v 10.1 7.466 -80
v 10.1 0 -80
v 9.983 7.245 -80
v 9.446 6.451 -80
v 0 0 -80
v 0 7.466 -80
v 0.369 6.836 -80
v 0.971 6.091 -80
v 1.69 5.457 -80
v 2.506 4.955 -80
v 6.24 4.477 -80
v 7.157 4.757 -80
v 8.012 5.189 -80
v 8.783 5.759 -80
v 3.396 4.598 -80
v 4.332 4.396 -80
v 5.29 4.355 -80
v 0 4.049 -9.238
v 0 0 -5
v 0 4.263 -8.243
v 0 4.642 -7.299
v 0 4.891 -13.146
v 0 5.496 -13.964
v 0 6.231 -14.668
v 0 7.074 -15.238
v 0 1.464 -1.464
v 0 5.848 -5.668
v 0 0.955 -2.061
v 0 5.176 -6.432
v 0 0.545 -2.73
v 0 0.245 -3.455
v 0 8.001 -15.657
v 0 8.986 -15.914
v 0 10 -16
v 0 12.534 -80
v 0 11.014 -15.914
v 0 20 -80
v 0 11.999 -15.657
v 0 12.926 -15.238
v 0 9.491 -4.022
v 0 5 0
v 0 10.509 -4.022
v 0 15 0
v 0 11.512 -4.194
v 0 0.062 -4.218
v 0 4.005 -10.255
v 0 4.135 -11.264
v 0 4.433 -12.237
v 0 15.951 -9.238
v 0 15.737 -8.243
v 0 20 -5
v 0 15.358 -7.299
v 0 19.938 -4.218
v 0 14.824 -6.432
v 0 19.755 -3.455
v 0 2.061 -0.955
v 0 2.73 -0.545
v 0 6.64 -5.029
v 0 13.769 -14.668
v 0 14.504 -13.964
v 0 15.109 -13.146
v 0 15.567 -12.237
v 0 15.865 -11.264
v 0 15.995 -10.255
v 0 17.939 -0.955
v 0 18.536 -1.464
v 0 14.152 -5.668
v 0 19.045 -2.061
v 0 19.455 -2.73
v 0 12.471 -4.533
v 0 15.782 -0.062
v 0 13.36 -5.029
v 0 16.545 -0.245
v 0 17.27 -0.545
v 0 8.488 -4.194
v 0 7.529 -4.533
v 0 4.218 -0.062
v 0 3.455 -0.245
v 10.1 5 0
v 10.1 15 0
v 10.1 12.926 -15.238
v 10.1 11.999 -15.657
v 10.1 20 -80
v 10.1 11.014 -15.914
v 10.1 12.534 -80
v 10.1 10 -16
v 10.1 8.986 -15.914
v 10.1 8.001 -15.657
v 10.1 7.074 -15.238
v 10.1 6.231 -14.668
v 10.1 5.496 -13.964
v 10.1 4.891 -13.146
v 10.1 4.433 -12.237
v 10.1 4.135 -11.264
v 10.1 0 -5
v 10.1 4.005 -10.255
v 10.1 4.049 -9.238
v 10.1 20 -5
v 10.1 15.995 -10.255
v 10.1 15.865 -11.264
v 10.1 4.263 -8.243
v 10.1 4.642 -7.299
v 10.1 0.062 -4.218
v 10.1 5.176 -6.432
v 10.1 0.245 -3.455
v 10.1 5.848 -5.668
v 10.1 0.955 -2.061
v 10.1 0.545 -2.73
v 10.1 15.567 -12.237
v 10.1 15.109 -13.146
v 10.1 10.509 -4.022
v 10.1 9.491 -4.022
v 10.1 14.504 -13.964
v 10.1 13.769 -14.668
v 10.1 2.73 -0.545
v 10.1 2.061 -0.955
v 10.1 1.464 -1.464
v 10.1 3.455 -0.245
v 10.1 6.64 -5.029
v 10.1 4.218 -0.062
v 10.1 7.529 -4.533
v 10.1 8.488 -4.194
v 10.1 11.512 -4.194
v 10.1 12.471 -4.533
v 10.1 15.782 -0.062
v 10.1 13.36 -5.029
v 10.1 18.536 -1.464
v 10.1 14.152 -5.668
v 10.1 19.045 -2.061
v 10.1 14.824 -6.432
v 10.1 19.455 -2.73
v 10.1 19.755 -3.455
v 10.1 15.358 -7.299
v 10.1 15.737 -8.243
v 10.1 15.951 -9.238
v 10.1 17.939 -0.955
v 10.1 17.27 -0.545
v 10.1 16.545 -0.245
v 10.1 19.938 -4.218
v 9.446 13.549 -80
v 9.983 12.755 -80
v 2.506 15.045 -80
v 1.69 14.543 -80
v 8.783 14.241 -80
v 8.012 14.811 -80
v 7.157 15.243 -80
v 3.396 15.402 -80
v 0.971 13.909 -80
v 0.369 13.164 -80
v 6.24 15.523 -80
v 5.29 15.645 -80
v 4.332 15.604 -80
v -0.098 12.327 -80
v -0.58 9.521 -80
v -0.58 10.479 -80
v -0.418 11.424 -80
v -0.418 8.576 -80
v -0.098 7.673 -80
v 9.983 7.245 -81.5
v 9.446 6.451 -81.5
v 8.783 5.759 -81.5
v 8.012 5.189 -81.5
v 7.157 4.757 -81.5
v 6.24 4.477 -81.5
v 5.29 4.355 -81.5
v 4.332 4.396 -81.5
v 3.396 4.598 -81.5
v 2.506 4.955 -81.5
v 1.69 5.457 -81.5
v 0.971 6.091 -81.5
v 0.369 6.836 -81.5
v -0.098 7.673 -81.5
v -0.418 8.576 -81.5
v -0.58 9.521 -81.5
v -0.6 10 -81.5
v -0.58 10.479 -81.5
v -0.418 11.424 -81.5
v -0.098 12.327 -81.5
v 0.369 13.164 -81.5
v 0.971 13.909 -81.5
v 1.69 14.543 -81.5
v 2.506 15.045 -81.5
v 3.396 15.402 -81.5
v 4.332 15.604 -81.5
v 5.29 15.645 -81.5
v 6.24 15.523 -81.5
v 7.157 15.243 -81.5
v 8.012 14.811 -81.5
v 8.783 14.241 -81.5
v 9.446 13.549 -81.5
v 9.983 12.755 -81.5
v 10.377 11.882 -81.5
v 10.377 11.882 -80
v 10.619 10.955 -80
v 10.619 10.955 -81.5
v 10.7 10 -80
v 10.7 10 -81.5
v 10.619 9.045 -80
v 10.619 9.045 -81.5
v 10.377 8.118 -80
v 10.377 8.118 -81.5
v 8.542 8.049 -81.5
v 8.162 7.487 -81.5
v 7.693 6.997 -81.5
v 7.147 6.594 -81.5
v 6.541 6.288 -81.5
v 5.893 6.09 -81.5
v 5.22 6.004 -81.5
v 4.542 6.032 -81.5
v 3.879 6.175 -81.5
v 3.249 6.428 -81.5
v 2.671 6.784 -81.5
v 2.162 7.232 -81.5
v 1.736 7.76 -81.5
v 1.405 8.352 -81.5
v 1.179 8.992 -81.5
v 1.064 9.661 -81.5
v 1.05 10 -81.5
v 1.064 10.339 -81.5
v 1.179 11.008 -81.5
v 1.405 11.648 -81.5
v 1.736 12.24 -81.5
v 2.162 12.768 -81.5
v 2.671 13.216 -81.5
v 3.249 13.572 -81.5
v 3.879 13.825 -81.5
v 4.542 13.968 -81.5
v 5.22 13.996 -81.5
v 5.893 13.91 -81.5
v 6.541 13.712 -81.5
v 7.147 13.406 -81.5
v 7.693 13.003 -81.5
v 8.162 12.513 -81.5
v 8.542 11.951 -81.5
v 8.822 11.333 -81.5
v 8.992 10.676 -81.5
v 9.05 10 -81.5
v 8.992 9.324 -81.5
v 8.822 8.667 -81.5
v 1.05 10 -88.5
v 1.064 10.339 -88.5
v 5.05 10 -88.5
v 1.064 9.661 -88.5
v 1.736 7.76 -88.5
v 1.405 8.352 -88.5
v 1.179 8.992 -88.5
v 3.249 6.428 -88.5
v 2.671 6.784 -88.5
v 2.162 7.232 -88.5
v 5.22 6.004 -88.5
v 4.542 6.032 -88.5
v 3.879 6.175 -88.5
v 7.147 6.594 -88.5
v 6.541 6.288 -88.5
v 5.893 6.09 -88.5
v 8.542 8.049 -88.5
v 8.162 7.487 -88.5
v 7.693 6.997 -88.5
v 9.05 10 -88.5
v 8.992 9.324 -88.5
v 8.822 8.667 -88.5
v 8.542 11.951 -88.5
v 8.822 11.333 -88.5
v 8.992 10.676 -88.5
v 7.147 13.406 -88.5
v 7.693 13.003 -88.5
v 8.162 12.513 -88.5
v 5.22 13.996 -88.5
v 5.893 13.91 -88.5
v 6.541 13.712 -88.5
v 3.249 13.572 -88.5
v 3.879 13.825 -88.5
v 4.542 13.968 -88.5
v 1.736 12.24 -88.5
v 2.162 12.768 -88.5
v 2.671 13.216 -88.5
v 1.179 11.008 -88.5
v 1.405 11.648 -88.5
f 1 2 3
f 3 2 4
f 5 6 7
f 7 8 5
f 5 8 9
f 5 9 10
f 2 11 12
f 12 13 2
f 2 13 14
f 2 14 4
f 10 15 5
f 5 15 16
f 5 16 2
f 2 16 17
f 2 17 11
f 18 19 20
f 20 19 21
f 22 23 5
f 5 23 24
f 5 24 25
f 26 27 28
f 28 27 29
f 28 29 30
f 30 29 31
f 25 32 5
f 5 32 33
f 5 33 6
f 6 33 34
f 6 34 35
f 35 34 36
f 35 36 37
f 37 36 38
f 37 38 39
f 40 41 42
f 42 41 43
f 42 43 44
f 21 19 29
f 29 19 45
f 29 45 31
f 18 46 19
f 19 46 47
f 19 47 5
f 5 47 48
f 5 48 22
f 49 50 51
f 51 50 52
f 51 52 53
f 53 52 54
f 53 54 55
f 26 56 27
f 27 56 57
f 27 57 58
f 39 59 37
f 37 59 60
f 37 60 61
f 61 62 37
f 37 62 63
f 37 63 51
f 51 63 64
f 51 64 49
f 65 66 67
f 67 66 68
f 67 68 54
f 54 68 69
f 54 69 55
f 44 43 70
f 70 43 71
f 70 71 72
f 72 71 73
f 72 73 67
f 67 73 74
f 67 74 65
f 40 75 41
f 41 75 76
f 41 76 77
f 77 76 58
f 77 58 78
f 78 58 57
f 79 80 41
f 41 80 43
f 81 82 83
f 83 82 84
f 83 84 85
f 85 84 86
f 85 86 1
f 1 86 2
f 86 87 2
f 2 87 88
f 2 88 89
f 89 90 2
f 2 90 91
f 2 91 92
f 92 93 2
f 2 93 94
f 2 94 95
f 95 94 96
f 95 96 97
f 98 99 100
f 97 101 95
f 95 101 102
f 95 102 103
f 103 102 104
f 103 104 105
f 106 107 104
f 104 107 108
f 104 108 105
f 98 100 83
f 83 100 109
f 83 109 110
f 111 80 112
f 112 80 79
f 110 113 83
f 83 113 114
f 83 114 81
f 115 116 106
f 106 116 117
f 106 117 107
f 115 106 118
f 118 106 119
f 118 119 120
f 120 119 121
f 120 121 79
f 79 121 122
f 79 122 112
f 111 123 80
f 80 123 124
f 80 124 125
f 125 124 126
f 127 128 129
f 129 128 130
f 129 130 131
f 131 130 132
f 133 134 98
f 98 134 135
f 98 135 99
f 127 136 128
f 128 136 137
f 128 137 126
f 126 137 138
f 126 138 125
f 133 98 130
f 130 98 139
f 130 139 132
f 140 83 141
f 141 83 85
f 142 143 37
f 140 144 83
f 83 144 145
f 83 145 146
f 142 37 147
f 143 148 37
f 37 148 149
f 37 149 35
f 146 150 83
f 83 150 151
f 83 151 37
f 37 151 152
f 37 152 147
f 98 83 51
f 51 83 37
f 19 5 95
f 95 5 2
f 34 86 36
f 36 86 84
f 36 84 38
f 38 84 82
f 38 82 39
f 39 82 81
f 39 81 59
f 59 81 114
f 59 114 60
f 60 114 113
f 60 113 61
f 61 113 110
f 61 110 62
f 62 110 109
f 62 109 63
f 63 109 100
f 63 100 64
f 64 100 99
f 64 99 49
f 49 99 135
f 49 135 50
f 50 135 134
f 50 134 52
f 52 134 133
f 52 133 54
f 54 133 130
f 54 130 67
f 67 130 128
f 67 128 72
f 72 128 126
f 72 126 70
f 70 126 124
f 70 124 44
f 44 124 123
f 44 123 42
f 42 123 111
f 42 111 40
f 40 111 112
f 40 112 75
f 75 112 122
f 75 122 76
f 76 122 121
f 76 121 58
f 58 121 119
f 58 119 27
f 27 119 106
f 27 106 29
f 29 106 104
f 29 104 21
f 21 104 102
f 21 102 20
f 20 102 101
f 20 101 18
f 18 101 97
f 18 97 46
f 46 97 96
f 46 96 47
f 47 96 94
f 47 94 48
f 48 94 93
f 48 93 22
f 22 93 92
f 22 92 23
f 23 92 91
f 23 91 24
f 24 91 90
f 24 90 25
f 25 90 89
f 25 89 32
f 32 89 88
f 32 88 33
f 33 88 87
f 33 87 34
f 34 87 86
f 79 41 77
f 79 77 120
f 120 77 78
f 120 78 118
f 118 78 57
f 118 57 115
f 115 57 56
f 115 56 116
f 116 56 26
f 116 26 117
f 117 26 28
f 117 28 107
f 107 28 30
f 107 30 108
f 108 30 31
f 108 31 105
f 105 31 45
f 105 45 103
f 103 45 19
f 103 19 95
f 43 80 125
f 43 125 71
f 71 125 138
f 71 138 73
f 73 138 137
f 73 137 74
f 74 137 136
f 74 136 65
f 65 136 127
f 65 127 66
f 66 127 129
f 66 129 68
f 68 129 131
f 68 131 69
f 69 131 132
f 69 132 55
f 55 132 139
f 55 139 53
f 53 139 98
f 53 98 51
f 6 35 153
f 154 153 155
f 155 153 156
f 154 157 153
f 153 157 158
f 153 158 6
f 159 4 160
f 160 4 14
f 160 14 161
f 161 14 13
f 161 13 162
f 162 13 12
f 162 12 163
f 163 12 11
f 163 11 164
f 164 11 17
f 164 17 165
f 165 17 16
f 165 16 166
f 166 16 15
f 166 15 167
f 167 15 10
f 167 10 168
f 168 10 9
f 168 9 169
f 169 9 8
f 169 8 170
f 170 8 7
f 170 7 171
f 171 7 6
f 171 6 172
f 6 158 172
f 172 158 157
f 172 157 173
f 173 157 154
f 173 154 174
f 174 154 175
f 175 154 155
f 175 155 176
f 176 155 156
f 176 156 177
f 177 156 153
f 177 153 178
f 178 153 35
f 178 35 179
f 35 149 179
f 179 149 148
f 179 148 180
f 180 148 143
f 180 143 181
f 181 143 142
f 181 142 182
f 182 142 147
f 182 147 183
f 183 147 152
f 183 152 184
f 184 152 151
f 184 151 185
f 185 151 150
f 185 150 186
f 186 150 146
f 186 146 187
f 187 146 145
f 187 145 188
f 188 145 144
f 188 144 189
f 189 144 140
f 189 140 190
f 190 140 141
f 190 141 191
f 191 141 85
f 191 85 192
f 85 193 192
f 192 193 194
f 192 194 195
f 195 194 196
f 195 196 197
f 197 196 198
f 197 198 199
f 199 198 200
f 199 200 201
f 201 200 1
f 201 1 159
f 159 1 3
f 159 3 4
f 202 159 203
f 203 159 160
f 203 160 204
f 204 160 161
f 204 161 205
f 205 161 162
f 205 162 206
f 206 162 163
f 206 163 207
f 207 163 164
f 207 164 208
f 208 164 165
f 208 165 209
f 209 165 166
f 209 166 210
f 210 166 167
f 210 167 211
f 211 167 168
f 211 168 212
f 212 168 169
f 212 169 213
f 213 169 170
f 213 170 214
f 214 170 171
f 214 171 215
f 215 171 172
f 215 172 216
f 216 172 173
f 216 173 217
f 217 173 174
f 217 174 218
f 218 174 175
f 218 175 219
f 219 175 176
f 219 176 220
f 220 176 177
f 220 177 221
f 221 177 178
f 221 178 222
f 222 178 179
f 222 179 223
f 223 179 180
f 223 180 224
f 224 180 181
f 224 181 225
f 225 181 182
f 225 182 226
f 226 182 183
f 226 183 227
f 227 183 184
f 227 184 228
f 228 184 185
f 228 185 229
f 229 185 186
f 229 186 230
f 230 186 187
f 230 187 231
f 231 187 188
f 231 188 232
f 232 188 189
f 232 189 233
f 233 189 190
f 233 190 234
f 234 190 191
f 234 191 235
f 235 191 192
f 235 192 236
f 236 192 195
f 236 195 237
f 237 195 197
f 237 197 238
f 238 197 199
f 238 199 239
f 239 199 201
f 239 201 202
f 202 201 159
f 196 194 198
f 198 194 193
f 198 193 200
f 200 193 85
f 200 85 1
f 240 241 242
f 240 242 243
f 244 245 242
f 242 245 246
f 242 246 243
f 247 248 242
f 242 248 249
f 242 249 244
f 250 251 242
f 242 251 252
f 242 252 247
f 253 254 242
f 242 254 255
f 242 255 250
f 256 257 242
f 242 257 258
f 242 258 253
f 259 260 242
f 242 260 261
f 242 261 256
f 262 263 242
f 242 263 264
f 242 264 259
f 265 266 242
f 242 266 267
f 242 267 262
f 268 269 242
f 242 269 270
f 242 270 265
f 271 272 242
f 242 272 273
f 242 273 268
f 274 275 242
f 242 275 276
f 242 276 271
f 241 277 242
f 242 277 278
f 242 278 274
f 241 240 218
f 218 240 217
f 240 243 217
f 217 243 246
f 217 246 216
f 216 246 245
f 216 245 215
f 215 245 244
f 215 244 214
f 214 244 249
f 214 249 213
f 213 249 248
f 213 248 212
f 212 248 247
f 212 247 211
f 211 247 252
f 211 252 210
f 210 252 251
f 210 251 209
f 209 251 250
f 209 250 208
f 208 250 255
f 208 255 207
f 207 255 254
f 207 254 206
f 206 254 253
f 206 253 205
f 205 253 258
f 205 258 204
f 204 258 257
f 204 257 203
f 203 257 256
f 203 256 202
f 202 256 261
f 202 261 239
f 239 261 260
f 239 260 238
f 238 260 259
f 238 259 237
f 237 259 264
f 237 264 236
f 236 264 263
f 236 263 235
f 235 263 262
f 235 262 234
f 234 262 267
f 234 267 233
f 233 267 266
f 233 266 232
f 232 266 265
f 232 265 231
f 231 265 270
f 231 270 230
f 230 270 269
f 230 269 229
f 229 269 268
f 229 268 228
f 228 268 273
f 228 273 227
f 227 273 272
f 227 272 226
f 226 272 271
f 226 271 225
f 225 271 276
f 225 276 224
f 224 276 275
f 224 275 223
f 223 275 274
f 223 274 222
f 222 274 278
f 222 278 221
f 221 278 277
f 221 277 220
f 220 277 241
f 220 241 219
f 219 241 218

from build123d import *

# Parameters (mm, degrees)
SKETCH1_W           = 10.1
SKETCH1_H           = 80
BOSS_EXTRUDE1_DEPTH = 20
CUT_EXTRUDE1_REACH  = 85.078
SKETCH2_R           = 6
FILLET1_R           = 5
SKETCH3_R           = 4
BOSS_EXTRUDE2_DEPTH = 8.5
SKETCH4_R           = 5.65
BOSS_EXTRUDE3_DEPTH = 1.5


with BuildPart() as part:
    # Sketch1 → Boss-Extrude1 (new body)
    with BuildSketch(Plane(origin=(0, 0, 0), x_dir=(1, 0, 0), z_dir=(0, 1, 0))):
        with Locations((5.05, 40)):
            Rectangle(SKETCH1_W, SKETCH1_H)
    extrude(amount=BOSS_EXTRUDE1_DEPTH)

    # Sketch2 → Cut-Extrude1 (cut, up to next)
    with BuildSketch(Plane(origin=(10.1, 0, 0), x_dir=(0, 0, -1), z_dir=(1, 0, 0)), mode=Mode.PRIVATE) as cut_extrude1_sk1:
        with Locations((10, 10)):
            Circle(SKETCH2_R)
    cut_extrude1_tool1 = extrude(cut_extrude1_sk1.sketch, amount=-CUT_EXTRUDE1_REACH, mode=Mode.PRIVATE) & part.part
    add(cut_extrude1_tool1.solids().sort_by_distance((10.1, 10, -10))[0], mode=Mode.SUBTRACT)

    # Fillet1
    fillet1_edges = [part.edges().sort_by_distance(p)[0] for p in [
        (5.05, 0, 0),
        (5.05, 20, 0),
    ]]
    fillet(fillet1_edges, radius=FILLET1_R)

    # Sketch3 → Boss-Extrude2 (add)
    with BuildSketch(Plane(origin=(0, 0, -80), x_dir=(-1, 0, 0), z_dir=(0, 0, -1))):
        with Locations(Location((-5.05, 10, 0), (0, 0, 180))):
            Circle(SKETCH3_R)
    extrude(amount=BOSS_EXTRUDE2_DEPTH)

    # Sketch4 → Boss-Extrude3 (add)
    with BuildSketch(Plane(origin=(0, 0, -80), x_dir=(-1, 0, 0), z_dir=(0, 0, -1))):
        with Locations(Location((-5.05, 10, 0), (0, 0, 206.64461444))):
            Circle(SKETCH4_R)
    extrude(amount=BOSS_EXTRUDE3_DEPTH)


solid = part.part
